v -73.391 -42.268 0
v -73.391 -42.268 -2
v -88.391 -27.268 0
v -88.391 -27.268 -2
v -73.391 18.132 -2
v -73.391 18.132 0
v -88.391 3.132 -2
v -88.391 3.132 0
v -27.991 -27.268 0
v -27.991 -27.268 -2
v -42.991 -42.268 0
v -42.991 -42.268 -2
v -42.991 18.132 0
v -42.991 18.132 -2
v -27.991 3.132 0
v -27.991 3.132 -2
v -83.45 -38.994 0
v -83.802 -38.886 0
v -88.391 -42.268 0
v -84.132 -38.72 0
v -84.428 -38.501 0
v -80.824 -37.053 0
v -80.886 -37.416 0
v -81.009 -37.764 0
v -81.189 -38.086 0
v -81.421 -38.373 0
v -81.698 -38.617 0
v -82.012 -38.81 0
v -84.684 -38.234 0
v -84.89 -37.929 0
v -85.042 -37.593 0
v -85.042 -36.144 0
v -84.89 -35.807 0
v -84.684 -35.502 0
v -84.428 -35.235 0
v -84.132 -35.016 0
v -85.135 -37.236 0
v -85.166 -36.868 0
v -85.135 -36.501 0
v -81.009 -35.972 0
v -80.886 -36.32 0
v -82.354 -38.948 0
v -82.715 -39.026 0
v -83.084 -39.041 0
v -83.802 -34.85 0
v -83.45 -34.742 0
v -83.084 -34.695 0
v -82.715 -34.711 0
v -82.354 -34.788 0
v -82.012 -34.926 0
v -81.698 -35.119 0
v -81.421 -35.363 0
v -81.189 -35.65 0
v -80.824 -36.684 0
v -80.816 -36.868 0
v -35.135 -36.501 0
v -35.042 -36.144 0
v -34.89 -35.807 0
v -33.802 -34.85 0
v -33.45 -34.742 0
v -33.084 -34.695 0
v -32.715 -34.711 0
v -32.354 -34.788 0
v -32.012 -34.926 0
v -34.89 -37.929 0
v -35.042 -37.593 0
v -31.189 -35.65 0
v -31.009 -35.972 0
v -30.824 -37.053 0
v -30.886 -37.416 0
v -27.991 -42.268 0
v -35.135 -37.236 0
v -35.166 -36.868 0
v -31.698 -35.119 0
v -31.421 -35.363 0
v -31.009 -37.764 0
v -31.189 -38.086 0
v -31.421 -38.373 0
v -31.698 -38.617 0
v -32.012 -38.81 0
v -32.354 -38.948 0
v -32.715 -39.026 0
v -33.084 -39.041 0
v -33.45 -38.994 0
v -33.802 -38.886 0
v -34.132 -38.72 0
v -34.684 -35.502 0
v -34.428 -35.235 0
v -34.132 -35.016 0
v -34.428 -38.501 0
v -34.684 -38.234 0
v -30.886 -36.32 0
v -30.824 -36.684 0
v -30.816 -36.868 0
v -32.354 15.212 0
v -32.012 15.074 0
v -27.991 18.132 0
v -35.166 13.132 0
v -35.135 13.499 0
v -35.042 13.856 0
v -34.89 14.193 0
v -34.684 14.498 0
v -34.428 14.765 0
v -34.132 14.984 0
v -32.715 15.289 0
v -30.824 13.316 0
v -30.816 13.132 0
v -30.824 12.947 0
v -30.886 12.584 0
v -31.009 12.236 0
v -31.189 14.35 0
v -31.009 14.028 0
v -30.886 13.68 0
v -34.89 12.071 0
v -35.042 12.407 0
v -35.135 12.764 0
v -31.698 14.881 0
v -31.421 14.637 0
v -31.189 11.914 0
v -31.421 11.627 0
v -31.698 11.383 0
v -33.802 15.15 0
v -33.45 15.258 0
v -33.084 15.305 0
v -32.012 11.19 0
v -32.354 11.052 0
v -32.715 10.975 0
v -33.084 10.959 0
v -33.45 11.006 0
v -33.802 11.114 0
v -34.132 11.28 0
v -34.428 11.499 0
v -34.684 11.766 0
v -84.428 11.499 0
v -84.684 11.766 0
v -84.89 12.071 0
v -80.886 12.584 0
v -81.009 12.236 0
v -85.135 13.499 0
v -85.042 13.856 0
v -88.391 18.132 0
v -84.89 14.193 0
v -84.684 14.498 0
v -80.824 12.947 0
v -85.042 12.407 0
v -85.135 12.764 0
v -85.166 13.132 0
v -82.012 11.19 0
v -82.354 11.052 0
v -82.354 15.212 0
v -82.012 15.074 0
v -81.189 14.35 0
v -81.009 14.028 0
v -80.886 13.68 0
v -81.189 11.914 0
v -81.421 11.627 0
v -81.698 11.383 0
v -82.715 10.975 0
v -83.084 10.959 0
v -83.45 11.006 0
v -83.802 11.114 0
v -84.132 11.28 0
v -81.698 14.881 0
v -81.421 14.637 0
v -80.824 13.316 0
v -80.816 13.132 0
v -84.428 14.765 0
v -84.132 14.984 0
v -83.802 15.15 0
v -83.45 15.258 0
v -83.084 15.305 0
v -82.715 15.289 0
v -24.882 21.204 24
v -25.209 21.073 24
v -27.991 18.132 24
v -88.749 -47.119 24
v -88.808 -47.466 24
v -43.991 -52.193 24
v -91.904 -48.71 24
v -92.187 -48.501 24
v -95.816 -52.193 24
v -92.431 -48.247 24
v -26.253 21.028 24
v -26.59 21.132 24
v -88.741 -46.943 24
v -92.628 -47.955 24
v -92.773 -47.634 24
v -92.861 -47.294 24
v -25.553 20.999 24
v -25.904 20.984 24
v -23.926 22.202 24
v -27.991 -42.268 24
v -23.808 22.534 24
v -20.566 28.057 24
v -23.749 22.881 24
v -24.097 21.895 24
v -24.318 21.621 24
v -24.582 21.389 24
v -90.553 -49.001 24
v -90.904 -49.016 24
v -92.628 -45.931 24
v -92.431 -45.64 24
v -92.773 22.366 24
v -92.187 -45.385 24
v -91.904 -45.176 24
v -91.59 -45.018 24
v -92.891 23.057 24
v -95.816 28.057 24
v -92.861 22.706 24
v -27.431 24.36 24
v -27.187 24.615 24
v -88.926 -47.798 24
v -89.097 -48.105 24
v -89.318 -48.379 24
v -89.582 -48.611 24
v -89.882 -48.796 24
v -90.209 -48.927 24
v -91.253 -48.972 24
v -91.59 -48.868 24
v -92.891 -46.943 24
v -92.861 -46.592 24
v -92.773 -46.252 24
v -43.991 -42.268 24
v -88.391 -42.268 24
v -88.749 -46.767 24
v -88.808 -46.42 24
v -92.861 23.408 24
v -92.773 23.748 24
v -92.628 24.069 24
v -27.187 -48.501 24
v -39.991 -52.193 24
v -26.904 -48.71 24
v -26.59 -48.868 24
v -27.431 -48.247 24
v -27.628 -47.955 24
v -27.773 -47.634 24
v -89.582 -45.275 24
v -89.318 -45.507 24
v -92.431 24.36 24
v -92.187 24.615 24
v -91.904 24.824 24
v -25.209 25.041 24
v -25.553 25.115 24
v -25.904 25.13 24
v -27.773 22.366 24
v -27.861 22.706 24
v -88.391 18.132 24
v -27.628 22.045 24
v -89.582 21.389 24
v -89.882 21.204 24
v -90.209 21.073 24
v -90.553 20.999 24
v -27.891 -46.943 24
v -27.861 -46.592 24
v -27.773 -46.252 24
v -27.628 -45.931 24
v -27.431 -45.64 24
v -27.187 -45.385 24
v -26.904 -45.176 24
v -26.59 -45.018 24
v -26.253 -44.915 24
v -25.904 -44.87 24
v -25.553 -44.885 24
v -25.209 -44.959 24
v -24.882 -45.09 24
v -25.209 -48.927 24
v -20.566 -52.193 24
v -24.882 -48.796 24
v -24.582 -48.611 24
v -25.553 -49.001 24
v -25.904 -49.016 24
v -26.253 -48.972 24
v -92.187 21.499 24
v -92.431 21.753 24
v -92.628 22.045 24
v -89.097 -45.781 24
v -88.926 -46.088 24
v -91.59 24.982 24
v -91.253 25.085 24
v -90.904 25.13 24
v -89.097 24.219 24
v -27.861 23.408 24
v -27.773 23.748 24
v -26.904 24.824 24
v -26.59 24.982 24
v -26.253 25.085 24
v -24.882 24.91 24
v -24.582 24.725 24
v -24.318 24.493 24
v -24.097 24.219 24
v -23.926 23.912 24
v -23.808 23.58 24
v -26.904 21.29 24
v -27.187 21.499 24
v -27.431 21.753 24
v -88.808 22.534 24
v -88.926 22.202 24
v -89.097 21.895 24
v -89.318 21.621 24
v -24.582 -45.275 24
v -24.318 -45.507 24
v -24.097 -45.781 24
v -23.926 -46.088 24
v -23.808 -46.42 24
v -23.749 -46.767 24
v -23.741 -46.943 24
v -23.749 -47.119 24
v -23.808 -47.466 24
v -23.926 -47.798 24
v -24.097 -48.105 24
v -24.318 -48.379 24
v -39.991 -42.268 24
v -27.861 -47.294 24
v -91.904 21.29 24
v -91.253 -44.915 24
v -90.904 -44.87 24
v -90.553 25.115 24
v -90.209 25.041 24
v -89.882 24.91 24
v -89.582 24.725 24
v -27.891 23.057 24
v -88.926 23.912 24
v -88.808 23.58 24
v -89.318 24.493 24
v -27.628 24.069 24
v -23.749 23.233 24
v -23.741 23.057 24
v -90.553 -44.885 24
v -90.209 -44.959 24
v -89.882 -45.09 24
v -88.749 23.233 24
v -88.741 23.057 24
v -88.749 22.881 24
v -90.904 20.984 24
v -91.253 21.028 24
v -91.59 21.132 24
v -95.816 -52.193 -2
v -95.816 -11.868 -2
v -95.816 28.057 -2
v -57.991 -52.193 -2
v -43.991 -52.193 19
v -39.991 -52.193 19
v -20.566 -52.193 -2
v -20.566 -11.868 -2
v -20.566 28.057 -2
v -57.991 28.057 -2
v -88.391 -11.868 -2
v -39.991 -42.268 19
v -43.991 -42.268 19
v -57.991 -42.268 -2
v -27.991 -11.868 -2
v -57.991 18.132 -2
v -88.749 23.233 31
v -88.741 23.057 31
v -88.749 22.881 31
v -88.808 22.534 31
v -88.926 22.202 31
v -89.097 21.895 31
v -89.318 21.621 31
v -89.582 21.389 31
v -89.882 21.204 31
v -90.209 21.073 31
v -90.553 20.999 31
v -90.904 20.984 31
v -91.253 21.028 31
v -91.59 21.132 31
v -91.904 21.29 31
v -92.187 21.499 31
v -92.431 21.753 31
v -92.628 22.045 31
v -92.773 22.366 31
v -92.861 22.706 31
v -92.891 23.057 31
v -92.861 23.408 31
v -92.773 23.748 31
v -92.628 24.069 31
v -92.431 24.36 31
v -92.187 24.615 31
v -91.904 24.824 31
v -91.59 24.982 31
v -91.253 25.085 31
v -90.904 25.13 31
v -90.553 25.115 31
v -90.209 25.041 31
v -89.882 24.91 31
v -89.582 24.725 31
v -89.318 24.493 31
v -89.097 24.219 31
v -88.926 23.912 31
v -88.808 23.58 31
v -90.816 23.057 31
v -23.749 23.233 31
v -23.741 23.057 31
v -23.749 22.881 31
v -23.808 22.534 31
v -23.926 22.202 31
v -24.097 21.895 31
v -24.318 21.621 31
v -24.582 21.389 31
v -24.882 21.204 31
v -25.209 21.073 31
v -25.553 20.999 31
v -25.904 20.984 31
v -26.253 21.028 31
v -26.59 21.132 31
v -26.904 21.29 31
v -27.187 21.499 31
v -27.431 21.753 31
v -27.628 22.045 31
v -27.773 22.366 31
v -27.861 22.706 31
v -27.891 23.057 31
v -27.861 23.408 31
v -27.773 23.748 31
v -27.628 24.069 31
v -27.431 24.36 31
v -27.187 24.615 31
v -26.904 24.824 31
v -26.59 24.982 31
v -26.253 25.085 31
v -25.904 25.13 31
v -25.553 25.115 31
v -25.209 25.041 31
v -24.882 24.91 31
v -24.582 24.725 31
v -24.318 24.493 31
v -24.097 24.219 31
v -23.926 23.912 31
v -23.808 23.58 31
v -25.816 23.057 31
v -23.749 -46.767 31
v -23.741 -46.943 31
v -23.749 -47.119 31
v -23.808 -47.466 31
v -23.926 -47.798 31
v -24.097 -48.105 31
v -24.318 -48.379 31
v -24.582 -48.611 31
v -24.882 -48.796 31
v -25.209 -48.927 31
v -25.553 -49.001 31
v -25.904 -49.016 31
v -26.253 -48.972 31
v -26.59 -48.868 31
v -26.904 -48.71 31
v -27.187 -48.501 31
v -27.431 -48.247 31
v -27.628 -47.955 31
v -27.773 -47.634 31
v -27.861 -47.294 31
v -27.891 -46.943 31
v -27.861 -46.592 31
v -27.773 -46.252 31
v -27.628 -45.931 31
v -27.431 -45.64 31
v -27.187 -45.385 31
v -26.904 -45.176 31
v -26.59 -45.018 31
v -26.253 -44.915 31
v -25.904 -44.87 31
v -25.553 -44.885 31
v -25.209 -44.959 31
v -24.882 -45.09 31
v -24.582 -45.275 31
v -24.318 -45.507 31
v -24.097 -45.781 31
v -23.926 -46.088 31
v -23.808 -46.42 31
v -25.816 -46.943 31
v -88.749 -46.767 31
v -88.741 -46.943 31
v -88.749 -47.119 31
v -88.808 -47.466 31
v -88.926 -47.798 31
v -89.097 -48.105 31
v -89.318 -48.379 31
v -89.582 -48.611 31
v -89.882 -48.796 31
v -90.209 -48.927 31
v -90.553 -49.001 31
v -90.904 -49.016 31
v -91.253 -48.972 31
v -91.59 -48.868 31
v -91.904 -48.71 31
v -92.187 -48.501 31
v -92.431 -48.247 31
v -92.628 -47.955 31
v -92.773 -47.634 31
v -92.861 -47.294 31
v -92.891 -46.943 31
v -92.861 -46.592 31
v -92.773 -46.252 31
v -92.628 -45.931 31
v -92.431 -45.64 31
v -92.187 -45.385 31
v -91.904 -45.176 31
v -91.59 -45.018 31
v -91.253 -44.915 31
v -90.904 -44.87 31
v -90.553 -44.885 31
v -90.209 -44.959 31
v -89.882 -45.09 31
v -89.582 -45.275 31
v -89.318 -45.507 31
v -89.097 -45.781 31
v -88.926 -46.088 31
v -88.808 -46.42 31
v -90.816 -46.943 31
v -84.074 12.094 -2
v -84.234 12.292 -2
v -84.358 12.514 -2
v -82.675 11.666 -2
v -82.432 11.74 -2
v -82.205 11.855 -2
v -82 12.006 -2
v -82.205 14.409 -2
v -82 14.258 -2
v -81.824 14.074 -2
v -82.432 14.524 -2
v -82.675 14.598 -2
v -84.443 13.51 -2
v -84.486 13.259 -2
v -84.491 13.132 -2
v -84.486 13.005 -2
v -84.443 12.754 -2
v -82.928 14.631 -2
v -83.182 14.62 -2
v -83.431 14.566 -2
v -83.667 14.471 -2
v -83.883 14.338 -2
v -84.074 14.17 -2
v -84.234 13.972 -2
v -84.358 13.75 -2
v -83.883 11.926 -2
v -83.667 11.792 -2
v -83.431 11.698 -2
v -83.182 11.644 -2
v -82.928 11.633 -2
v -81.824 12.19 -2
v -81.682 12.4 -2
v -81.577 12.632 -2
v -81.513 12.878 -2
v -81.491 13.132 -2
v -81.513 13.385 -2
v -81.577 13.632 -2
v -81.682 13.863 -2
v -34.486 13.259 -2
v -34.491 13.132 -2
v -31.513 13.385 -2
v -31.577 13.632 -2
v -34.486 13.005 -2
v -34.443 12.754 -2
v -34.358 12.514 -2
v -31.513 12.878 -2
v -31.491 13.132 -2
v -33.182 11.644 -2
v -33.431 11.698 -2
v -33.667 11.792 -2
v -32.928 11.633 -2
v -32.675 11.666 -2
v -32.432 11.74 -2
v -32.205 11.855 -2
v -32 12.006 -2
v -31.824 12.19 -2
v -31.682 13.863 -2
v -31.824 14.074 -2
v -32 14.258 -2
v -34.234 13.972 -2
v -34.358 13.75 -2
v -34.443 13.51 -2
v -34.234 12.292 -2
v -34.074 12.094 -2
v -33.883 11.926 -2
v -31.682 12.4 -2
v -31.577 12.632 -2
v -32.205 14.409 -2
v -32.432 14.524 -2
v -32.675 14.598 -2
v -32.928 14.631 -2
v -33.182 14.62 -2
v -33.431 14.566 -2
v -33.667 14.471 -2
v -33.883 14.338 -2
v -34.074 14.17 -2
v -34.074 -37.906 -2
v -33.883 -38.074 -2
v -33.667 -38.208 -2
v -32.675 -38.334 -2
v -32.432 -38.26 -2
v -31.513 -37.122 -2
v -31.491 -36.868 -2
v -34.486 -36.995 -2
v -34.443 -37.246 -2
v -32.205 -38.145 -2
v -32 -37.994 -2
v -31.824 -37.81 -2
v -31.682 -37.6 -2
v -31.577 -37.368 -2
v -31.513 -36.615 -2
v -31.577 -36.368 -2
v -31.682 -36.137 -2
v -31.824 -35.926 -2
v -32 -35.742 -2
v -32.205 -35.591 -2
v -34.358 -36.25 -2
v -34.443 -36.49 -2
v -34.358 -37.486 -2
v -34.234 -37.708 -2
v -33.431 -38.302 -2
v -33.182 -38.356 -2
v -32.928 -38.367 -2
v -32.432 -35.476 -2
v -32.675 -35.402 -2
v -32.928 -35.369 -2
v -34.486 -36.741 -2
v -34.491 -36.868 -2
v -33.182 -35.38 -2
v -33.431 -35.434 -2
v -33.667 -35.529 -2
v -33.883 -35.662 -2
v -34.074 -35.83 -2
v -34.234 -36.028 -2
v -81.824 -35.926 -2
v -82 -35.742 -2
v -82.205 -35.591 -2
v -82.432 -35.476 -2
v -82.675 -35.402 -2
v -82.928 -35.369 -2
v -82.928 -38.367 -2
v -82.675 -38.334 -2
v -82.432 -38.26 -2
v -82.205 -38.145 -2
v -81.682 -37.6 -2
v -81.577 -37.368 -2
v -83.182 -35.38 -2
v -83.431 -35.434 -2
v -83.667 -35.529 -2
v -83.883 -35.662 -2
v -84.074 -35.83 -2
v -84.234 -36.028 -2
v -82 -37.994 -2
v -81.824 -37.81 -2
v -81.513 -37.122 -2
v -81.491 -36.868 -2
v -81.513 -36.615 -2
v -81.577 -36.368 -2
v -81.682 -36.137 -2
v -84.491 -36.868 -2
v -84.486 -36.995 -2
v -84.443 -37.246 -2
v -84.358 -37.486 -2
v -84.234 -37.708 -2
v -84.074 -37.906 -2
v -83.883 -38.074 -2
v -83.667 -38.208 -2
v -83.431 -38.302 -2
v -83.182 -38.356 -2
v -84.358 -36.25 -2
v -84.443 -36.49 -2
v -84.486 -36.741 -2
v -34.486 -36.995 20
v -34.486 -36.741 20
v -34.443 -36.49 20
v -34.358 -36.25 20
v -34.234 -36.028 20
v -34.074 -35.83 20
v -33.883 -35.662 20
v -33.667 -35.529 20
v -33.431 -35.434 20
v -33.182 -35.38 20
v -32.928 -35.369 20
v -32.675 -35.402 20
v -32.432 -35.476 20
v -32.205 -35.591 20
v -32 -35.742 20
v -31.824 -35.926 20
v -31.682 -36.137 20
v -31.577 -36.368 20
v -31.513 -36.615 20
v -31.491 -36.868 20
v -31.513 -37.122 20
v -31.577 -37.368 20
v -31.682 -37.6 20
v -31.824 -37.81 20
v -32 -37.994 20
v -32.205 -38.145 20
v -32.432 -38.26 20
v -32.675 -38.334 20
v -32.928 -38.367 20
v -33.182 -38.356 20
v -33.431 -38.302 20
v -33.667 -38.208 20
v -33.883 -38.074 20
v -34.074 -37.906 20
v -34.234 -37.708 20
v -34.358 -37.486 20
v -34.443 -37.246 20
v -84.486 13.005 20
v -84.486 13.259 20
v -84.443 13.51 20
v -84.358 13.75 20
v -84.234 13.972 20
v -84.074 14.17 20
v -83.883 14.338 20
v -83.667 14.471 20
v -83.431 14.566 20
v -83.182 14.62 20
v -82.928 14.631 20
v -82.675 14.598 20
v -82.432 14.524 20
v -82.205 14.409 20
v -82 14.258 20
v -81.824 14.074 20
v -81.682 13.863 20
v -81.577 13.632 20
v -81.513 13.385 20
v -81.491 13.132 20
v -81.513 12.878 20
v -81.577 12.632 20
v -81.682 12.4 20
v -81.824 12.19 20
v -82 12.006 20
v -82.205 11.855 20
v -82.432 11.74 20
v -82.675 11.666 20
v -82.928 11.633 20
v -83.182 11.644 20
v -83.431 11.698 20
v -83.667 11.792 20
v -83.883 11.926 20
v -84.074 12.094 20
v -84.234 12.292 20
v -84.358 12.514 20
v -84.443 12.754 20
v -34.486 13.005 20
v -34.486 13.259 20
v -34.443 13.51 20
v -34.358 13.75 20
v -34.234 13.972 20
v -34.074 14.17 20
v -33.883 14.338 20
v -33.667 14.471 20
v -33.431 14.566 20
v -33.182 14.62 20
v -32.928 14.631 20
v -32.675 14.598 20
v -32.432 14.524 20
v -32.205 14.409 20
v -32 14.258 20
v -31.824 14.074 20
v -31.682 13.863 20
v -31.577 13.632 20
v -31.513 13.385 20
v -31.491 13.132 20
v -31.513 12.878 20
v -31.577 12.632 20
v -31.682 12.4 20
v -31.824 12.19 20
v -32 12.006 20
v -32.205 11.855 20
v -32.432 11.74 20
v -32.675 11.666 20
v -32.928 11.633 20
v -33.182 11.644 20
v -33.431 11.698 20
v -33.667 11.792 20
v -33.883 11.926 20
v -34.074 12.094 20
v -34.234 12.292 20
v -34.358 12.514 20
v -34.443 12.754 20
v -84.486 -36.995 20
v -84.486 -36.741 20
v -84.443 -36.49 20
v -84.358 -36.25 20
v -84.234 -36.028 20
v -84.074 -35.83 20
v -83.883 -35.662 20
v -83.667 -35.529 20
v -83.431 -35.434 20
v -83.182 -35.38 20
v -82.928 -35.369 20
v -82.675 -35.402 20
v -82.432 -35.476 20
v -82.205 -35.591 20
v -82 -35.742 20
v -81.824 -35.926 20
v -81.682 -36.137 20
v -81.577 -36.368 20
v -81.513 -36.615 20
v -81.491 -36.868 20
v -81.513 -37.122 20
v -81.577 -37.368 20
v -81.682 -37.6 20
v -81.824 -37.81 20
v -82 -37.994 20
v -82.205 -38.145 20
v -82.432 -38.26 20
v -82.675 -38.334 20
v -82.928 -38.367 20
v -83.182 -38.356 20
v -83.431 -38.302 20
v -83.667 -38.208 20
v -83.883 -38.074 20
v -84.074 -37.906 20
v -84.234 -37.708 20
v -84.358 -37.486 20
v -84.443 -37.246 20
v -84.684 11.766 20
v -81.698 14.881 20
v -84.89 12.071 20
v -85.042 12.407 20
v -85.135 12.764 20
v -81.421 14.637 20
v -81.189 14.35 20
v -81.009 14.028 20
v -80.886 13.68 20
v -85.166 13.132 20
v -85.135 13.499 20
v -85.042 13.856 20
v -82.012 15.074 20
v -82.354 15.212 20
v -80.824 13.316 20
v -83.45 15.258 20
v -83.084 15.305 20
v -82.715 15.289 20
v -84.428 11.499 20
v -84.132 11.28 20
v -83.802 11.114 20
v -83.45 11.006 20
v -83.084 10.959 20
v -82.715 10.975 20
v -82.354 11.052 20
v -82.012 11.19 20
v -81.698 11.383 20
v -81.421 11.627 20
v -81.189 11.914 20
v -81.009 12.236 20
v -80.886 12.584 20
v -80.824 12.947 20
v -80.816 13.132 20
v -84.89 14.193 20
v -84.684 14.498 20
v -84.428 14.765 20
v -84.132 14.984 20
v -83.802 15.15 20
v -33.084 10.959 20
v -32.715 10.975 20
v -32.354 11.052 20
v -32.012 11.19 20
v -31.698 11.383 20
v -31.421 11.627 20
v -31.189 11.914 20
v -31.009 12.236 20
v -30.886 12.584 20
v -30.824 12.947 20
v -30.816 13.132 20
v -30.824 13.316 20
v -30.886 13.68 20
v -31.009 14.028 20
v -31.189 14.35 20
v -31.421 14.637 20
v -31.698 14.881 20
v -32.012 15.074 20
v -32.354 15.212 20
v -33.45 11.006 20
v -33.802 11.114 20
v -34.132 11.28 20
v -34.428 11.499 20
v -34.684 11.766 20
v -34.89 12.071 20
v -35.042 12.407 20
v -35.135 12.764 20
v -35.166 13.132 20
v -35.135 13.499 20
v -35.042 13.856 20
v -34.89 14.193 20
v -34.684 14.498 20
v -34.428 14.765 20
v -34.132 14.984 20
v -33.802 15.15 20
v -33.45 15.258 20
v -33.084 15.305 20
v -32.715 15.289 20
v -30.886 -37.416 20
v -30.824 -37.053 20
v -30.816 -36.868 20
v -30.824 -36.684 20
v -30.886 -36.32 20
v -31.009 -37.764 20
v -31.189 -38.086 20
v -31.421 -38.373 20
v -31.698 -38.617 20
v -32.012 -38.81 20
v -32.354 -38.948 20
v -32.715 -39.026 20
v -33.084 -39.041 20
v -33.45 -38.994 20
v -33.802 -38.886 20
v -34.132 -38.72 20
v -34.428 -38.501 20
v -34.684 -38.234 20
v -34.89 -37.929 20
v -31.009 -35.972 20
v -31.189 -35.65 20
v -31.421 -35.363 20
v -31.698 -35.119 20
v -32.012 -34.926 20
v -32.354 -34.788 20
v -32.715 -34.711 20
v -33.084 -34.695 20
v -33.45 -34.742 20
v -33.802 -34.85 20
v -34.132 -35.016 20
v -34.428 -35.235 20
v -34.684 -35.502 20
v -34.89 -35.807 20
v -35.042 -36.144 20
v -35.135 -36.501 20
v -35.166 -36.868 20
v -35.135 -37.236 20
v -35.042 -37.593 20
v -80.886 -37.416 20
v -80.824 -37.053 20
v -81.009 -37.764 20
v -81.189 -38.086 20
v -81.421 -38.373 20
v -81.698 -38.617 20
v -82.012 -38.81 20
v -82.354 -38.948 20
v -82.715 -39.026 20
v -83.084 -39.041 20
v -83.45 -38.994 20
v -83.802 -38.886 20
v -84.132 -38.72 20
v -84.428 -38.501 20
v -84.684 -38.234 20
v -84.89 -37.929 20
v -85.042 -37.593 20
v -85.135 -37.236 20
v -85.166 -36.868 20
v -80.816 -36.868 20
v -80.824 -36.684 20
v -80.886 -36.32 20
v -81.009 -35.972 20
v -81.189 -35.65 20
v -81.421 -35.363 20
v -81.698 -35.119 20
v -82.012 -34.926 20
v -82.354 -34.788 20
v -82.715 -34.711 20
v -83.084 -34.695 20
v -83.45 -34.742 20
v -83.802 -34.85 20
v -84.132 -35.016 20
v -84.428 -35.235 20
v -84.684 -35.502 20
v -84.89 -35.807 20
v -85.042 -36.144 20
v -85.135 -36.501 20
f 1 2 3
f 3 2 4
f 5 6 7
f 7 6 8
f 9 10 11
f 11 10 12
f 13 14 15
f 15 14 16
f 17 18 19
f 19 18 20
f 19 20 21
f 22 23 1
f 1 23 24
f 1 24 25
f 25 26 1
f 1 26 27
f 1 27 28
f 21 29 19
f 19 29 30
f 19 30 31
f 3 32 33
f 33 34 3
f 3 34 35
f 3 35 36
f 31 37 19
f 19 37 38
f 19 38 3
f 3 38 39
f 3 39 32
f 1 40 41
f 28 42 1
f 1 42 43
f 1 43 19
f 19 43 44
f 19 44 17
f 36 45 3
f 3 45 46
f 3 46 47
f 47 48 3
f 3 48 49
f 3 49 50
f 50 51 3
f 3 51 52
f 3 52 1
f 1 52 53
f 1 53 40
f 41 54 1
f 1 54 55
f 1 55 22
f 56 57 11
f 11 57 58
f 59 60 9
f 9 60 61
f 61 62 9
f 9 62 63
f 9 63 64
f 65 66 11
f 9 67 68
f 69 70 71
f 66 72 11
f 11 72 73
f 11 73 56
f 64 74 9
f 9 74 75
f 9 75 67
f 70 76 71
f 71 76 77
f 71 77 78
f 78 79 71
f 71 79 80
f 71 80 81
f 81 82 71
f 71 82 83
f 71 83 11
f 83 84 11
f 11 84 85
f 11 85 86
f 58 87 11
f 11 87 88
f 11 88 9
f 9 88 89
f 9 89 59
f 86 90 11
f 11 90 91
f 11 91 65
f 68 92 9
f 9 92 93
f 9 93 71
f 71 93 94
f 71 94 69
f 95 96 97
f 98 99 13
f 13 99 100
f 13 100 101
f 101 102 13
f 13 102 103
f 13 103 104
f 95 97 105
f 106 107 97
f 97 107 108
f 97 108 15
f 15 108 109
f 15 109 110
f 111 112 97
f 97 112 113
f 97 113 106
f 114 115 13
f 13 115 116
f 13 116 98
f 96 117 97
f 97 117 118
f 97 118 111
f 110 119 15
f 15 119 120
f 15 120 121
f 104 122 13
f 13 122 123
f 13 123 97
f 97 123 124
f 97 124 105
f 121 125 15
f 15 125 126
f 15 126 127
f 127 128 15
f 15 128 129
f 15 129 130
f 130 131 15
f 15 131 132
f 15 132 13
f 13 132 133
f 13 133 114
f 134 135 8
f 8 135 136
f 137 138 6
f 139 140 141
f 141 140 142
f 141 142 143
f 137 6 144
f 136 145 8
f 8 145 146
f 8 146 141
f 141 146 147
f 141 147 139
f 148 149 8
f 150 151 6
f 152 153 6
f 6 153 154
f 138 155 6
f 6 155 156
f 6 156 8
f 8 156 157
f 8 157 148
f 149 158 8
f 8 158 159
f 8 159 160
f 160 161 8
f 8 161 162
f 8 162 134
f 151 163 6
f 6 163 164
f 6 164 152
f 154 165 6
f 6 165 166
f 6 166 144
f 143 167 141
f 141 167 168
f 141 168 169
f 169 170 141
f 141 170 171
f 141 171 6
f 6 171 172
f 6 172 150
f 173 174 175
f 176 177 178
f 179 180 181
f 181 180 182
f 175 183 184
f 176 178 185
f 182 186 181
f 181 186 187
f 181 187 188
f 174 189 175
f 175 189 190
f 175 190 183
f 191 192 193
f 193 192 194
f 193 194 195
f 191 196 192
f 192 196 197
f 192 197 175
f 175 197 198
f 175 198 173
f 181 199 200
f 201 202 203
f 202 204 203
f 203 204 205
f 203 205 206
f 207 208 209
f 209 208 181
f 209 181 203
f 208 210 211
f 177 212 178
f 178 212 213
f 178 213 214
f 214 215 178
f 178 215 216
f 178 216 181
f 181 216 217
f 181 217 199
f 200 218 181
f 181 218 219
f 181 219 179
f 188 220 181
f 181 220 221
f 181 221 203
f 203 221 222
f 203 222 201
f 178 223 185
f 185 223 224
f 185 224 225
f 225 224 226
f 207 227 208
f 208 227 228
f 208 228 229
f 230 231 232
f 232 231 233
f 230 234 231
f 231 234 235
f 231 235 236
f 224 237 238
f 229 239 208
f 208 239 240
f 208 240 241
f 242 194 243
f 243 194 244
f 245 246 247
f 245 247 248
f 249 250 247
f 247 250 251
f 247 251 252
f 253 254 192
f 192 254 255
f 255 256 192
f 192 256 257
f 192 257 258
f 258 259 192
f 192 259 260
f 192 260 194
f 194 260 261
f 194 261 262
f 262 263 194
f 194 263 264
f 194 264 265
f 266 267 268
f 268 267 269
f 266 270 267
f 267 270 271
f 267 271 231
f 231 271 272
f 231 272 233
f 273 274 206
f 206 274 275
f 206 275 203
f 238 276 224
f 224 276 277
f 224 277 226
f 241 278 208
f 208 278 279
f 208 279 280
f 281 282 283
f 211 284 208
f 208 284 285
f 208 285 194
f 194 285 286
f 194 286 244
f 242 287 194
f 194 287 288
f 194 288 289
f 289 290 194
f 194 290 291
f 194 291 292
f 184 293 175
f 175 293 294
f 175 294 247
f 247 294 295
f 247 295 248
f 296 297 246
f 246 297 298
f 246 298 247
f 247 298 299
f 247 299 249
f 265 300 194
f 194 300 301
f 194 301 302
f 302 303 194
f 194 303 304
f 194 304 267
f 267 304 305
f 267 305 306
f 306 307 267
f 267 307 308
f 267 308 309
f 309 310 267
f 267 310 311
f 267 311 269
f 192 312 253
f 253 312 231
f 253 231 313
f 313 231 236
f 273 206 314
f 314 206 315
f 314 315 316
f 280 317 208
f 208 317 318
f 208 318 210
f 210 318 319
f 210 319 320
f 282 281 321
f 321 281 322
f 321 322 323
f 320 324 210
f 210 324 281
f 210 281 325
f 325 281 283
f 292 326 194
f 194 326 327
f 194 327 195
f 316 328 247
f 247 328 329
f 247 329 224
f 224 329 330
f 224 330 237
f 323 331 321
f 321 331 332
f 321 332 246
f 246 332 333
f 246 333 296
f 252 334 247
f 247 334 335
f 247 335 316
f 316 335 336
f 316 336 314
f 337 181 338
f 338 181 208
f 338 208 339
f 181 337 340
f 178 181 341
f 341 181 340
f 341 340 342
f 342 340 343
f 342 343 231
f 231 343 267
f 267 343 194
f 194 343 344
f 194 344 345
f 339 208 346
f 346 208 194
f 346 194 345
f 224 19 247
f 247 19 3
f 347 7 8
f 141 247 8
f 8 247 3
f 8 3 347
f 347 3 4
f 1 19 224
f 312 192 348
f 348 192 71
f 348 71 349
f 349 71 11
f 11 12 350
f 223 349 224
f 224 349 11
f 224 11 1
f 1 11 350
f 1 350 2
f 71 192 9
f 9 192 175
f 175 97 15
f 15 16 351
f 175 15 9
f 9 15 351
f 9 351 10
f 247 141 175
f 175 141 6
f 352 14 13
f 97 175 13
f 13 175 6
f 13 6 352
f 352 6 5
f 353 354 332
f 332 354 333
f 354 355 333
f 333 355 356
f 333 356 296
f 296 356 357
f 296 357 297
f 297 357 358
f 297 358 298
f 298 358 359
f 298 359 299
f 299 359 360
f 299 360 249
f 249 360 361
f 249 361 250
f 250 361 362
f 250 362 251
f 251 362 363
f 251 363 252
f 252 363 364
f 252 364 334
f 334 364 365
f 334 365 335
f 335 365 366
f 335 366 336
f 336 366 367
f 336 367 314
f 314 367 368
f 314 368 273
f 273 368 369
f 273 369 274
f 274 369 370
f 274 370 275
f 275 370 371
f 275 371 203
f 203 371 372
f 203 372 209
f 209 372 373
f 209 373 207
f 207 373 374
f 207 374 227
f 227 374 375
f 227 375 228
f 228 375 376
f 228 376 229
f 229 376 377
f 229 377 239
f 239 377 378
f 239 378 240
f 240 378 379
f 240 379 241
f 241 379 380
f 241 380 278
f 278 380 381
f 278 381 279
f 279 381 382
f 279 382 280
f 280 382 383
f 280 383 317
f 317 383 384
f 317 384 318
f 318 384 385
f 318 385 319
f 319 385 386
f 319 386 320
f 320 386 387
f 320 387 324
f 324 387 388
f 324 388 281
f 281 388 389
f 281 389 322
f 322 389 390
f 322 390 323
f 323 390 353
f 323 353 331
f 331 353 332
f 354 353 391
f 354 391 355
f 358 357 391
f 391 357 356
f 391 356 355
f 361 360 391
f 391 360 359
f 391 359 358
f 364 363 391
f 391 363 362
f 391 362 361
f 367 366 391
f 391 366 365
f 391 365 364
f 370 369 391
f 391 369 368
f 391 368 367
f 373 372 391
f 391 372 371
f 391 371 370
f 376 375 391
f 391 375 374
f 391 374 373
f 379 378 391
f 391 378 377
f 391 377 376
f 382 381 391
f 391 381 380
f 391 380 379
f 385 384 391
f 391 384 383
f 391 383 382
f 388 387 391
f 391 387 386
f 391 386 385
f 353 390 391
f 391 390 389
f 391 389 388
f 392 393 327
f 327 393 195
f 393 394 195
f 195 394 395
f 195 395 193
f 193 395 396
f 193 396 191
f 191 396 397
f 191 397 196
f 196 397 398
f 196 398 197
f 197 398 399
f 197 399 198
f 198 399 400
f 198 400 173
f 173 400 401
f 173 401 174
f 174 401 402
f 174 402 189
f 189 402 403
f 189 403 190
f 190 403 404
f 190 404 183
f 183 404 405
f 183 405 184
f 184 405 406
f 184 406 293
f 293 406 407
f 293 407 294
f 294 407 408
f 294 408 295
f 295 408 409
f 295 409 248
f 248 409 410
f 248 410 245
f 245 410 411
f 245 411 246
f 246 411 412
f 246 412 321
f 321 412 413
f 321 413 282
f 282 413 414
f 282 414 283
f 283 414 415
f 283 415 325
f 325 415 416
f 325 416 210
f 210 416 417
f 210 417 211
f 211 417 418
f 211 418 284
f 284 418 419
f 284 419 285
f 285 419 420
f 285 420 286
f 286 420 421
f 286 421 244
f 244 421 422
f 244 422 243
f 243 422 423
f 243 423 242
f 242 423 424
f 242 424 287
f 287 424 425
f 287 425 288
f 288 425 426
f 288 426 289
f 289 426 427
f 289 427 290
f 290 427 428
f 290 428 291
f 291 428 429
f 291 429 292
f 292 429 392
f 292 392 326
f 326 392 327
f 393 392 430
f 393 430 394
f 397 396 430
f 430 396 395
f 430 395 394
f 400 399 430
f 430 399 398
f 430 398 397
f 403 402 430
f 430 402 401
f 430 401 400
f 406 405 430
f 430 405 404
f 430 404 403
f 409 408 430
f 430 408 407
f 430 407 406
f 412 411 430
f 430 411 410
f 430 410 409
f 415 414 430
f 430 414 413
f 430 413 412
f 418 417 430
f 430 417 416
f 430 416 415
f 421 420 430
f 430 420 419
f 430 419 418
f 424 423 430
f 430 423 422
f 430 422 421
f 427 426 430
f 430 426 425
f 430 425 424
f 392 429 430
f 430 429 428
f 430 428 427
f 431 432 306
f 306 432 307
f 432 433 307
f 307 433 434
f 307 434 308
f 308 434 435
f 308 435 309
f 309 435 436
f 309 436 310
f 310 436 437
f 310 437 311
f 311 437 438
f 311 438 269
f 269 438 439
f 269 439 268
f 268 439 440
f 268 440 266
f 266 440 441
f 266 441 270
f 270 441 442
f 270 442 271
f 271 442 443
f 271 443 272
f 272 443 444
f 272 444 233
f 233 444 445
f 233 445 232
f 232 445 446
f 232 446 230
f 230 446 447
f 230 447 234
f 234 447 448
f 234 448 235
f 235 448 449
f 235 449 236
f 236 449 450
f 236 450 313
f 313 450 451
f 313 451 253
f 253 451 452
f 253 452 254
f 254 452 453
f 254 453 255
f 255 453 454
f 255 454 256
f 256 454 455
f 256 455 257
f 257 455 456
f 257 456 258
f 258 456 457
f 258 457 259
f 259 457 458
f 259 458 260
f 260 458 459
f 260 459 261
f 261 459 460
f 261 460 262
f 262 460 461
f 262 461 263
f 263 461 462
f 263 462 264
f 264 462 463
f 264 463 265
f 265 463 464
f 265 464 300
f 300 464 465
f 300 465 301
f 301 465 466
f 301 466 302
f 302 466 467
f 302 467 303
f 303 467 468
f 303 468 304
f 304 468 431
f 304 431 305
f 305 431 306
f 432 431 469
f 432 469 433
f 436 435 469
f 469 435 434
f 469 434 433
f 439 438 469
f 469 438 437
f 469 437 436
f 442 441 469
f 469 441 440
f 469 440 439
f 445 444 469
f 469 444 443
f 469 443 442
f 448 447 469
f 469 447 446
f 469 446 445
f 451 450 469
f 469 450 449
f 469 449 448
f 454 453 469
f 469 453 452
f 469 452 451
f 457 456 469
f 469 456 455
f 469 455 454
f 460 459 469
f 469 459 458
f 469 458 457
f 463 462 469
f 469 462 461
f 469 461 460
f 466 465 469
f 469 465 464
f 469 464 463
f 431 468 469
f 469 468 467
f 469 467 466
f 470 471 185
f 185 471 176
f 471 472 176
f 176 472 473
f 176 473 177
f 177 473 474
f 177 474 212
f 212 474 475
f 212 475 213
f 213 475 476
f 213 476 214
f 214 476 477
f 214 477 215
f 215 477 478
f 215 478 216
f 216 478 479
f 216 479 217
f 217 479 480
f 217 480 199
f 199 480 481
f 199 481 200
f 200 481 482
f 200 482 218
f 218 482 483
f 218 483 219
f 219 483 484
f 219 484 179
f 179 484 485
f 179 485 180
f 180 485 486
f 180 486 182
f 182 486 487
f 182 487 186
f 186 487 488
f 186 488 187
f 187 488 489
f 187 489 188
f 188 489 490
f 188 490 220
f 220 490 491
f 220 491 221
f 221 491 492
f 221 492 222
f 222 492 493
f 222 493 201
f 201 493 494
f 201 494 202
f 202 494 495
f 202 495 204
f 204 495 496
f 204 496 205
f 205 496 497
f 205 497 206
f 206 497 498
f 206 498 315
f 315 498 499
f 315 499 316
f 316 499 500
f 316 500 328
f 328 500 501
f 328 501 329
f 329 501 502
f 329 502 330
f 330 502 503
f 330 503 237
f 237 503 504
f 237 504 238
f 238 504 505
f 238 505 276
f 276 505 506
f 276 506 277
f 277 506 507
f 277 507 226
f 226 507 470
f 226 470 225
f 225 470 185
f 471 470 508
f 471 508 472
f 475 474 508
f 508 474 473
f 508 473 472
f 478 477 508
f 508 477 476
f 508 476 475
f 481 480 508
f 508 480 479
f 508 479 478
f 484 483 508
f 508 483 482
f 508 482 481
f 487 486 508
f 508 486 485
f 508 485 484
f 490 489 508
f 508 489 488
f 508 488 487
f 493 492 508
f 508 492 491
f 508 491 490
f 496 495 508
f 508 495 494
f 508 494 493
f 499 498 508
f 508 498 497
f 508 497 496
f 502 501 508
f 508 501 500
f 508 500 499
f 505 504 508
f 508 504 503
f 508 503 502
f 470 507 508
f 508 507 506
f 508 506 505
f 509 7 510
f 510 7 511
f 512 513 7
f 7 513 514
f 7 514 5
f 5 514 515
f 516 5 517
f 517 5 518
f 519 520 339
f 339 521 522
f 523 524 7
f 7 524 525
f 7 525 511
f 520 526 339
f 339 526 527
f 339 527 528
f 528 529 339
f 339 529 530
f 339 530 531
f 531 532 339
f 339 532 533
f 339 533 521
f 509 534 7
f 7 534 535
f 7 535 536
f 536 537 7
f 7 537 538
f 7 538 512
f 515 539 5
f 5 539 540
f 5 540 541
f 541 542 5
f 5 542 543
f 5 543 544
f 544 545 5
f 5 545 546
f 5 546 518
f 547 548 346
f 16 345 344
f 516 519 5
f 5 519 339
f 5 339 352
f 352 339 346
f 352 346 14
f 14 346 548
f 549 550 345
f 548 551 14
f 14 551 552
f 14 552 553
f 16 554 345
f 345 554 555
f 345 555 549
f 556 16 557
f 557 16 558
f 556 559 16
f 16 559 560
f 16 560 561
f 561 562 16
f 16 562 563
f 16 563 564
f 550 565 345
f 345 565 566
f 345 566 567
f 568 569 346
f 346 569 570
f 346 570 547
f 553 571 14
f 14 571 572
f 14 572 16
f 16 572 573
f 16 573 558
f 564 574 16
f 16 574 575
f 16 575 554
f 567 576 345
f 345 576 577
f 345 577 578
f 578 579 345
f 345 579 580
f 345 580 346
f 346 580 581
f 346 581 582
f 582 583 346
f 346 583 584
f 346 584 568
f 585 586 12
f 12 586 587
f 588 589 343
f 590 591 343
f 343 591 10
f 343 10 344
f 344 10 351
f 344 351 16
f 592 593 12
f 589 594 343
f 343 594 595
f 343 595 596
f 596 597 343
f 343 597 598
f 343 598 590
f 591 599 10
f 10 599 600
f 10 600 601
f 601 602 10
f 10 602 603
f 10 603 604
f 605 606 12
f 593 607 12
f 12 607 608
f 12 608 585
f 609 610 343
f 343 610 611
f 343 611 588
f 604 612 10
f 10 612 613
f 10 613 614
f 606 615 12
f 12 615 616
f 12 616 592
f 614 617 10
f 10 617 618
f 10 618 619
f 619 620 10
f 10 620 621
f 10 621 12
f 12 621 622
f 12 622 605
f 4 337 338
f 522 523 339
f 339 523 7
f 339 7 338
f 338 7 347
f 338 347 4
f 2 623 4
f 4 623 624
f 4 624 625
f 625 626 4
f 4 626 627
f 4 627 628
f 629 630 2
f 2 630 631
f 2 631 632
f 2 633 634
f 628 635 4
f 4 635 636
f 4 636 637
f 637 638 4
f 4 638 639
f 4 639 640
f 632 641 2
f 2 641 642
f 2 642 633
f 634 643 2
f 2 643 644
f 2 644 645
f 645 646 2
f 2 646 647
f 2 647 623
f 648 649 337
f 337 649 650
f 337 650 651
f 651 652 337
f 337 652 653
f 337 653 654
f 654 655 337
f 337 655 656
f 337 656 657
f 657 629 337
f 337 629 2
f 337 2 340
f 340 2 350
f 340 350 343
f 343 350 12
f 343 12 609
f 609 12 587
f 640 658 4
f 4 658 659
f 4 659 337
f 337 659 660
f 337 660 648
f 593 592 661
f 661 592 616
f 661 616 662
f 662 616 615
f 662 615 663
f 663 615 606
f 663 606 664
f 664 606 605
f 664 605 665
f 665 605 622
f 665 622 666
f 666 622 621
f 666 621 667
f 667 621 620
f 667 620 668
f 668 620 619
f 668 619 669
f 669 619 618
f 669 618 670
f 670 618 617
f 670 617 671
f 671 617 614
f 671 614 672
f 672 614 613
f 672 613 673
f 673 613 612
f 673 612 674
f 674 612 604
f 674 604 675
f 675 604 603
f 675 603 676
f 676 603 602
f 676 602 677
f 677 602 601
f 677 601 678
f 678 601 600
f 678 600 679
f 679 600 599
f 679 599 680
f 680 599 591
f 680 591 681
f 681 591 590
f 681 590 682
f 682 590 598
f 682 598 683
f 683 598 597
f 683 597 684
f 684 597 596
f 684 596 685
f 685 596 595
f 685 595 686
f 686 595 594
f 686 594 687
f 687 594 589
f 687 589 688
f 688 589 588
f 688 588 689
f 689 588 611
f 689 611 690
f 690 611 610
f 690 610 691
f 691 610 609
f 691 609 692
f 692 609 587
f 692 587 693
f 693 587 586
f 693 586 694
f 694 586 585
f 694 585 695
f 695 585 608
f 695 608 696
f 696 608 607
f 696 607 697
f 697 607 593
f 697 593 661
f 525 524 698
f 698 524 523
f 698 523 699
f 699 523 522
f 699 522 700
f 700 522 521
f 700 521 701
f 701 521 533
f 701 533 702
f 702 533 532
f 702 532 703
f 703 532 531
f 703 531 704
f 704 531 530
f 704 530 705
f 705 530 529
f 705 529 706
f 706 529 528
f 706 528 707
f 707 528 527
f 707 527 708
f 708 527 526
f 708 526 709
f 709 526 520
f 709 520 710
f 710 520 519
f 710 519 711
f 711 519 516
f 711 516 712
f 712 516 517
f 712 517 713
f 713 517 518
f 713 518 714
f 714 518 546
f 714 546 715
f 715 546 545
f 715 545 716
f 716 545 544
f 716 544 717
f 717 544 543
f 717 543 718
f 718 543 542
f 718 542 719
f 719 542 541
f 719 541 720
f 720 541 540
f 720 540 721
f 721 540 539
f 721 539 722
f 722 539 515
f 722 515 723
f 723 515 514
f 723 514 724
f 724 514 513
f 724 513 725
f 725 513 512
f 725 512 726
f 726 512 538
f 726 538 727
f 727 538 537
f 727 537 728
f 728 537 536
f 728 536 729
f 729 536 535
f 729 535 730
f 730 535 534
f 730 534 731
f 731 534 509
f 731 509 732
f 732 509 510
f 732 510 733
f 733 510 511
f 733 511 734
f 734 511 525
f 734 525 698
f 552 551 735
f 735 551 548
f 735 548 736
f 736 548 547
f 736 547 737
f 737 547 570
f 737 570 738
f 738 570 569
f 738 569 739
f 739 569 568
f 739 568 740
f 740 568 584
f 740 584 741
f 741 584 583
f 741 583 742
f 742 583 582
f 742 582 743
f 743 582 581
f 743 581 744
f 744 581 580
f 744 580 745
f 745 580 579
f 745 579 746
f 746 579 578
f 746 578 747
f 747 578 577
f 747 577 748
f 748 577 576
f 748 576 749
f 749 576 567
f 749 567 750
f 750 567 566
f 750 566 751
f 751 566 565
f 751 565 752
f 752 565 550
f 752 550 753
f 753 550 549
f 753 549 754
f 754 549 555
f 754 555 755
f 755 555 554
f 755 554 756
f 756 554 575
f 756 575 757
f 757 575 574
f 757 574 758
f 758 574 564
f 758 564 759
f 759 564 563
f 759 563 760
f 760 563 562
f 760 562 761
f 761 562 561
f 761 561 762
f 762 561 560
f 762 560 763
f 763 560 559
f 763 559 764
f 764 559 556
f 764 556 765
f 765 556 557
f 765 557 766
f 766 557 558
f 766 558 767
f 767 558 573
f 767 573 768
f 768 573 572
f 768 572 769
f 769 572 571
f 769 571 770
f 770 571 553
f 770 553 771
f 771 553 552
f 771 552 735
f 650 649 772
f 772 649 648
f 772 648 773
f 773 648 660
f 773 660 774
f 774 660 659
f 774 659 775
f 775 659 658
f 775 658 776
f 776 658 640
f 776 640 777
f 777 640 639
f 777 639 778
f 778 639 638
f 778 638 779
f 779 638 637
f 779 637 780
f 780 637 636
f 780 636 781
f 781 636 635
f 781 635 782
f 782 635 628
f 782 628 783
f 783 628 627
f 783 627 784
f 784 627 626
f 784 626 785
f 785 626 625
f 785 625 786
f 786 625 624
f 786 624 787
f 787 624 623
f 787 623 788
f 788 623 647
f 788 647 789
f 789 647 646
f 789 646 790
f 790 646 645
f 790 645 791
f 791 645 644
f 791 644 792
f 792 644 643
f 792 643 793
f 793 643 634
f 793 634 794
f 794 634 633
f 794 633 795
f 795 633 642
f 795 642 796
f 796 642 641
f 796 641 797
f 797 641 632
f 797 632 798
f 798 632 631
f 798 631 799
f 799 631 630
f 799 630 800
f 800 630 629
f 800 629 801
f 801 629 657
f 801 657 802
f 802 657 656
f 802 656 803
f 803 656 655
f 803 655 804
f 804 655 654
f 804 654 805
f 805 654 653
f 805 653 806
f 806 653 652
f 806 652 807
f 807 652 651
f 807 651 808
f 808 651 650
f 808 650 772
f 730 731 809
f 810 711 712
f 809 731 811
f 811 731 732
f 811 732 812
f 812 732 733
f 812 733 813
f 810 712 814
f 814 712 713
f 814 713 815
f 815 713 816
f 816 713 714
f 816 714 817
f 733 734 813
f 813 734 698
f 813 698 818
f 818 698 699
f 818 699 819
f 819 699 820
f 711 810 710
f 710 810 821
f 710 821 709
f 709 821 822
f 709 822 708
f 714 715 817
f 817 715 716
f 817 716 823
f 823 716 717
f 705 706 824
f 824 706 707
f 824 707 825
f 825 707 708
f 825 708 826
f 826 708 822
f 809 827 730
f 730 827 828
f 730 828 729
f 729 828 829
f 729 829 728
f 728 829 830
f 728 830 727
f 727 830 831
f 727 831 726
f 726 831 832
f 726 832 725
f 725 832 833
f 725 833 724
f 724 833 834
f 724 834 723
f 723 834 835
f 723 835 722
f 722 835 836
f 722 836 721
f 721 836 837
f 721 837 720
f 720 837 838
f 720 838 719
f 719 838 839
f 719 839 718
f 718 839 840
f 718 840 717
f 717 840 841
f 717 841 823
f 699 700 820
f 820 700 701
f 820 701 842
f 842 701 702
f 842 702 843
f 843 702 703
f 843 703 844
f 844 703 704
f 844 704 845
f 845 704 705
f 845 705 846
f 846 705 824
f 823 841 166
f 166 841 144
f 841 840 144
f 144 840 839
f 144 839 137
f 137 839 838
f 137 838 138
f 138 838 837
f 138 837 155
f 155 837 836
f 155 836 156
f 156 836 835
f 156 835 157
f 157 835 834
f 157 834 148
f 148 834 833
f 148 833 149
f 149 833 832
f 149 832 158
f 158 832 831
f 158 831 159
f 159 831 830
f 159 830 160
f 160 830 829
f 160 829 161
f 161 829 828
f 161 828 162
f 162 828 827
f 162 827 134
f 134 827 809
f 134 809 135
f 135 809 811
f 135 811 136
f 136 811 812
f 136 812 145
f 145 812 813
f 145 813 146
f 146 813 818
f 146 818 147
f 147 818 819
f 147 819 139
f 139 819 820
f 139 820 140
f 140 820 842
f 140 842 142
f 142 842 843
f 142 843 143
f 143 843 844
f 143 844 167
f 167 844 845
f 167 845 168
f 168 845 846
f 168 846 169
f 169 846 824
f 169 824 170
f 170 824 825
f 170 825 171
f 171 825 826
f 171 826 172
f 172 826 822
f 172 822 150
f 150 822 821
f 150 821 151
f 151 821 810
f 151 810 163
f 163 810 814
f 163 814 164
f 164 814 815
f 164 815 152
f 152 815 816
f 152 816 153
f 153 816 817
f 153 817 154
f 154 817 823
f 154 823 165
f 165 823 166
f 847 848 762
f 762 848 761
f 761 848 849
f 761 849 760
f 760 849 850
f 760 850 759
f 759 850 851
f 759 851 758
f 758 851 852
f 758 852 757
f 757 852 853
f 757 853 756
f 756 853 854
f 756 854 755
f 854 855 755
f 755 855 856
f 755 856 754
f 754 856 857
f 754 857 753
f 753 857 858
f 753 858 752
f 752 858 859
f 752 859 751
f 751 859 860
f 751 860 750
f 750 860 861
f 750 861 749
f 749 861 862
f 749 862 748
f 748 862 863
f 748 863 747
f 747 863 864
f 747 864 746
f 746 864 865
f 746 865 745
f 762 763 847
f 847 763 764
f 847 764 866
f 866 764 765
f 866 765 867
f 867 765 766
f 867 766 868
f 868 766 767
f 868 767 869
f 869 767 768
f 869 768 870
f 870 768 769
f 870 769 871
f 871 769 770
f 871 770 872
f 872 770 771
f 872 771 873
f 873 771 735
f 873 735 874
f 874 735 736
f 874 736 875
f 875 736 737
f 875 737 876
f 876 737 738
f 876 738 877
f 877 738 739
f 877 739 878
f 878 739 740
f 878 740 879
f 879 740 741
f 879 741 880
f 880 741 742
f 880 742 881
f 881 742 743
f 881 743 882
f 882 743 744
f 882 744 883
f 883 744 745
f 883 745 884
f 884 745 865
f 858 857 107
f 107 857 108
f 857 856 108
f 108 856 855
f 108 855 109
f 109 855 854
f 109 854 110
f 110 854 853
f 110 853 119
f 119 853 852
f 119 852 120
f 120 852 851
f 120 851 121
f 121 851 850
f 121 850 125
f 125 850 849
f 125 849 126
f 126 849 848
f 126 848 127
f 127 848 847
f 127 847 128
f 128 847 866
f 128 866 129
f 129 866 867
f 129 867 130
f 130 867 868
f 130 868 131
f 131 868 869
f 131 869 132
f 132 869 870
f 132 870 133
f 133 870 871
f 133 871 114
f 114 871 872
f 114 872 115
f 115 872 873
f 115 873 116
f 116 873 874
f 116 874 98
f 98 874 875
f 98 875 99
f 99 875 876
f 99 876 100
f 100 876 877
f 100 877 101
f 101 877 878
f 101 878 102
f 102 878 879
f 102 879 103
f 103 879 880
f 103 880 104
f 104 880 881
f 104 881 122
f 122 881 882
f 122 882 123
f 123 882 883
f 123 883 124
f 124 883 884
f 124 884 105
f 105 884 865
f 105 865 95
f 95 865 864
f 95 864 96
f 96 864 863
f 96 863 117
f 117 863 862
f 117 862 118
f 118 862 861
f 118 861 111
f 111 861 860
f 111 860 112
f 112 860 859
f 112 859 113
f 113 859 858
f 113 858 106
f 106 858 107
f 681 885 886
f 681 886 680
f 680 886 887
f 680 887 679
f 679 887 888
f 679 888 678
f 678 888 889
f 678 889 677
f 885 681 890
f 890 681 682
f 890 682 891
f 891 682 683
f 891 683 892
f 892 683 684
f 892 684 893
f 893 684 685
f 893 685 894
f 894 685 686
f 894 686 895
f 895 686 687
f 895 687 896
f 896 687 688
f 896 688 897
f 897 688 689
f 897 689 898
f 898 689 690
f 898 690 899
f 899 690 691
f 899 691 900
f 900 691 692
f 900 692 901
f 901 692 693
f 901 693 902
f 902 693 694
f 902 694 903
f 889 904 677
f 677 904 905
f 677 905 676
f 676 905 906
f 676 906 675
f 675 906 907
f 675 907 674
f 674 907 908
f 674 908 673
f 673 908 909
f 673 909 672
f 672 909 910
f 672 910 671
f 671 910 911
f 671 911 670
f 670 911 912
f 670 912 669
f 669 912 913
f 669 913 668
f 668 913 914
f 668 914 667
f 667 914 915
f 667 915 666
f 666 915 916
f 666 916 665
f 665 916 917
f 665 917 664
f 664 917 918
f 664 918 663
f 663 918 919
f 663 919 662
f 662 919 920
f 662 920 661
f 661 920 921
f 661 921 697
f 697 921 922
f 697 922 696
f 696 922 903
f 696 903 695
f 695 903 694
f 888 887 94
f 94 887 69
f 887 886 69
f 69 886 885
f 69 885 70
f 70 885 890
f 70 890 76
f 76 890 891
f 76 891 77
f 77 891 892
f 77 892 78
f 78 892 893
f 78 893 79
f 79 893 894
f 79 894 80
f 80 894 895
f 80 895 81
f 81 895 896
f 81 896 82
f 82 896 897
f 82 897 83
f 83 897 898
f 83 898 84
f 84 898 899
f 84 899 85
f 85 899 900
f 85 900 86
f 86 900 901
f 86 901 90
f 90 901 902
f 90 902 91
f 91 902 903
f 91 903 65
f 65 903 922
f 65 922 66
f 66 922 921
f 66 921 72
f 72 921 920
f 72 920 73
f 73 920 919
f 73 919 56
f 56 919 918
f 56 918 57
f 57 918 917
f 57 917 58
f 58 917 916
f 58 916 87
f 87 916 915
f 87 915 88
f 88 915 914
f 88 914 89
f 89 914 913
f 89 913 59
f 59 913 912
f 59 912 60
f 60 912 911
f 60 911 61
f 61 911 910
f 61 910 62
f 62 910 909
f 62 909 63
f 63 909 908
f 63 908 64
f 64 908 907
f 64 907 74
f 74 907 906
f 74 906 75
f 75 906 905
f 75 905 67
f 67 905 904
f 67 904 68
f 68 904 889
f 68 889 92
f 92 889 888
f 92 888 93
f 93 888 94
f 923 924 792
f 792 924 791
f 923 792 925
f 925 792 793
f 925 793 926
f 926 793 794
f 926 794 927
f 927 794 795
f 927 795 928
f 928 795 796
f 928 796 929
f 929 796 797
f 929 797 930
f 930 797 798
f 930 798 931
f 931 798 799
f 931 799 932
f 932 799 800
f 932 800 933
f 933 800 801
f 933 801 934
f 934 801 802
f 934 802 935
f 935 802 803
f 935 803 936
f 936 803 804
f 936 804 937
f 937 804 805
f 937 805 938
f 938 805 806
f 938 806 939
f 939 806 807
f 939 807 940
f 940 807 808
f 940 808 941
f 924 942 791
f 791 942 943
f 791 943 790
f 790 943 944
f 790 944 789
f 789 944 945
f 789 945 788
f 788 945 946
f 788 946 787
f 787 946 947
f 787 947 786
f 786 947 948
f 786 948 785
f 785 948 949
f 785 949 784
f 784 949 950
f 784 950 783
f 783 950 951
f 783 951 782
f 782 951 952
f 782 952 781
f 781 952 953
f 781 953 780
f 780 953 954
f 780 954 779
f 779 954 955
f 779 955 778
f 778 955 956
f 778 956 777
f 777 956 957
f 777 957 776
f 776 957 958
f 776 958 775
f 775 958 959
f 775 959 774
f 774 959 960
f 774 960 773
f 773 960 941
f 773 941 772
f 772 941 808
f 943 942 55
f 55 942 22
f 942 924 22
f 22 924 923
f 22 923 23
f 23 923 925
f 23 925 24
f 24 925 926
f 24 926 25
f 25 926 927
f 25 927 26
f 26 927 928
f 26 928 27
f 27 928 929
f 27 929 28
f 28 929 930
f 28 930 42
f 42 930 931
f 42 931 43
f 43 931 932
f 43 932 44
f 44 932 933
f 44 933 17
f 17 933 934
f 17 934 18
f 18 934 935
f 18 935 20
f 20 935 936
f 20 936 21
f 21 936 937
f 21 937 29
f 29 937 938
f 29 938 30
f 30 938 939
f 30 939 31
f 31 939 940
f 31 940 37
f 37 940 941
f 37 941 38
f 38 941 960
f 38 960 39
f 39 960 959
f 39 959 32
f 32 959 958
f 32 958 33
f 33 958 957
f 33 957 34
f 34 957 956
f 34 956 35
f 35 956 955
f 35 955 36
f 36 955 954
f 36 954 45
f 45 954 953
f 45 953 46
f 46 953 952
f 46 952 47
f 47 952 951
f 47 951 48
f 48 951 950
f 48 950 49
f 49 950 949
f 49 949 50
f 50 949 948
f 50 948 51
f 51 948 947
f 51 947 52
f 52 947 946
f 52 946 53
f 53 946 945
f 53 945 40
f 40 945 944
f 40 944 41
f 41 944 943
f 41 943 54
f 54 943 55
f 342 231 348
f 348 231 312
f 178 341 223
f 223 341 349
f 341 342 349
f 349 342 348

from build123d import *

# Parameters (mm, degrees)
CROQUIS1_W              = 75.25
CROQUIS1_H              = 80.25
CROQUIS1_W_2            = 60.4
CROQUIS1_H_2            = 60.4
SALIENTE_EXTRUIR1_DEPTH = 24
CROQUIS2_R              = 2.075
SALIENTE_EXTRUIR2_DEPTH = 7
CROQUIS3_R              = 1.5
SALIENTE_EXTRUIR3_DEPTH = 2
CROQUIS4_R              = 2.175
CROQUIS4_R_2            = 1.5
SALIENTE_EXTRUIR4_DEPTH = 20
CROQUIS5_W              = 4
CROQUIS5_H              = 5
CORTAR_EXTRUIR1_DEPTH   = 9.925
SALIENTE_EXTRUIR5_DEPTH = 2


with BuildPart() as part:
    # Croquis1 → Saliente-Extruir1 (new body)
    with BuildSketch(Plane.XY):
        with Locations((-58.191304348, -12.068115942)):
            Rectangle(CROQUIS1_W, CROQUIS1_H)
        with Locations((-58.191304348, -12.068115942)):
            Rectangle(CROQUIS1_W_2, CROQUIS1_H_2, mode=Mode.SUBTRACT)
    extrude(amount=SALIENTE_EXTRUIR1_DEPTH)

    # Croquis2 → Saliente-Extruir2 (add)
    with BuildSketch(Plane.XY.offset(24)):
        with Locations((-90.816304348, 23.056884058)):
            Circle(CROQUIS2_R)
        with Locations((-25.816304348, 23.056884058)):
            Circle(CROQUIS2_R)
        with Locations((-25.816304348, -46.943115942)):
            Circle(CROQUIS2_R)
        with Locations((-90.816304348, -46.943115942)):
            Circle(CROQUIS2_R)
    extrude(amount=SALIENTE_EXTRUIR2_DEPTH)

    # Croquis3 → Saliente-Extruir3 (add)
    with BuildSketch(Plane(origin=(0, 0, 0), x_dir=(-1, 0, 0), z_dir=(0, 0, -1))):
        Polygon((20.566304348, -19.843115942), (20.566304348, -52.193115942), (52.916304348, -52.193115942), align=None)
        with Locations((32.991304348, -36.868115942)):
            Circle(CROQUIS3_R, mode=Mode.SUBTRACT)
        Polygon((95.816304348, -4.293115942), (95.816304348, 28.056884058), (63.466304348, 28.056884058), align=None)
        with Locations((82.991304348, 13.131884058)):
            Circle(CROQUIS3_R, mode=Mode.SUBTRACT)
        Polygon((95.816304348, -19.843115942), (63.466304348, -52.193115942), (95.816304348, -52.193115942), align=None)
        with Locations((82.991304348, -36.868115942)):
            Circle(CROQUIS3_R, mode=Mode.SUBTRACT)
        Polygon((20.566304348, -4.293115942), (52.916304348, 28.056884058), (20.566304348, 28.056884058), align=None)
        with Locations((32.991304348, 13.131884058)):
            Circle(CROQUIS3_R, mode=Mode.SUBTRACT)
    extrude(amount=SALIENTE_EXTRUIR3_DEPTH)

    # Croquis4 → Saliente-Extruir4 (add)
    with BuildSketch(Plane.XY):
        with Locations((-82.991304348, 13.131884058)):
            Circle(CROQUIS4_R)
        with Locations((-82.991304348, 13.131884058)):
            Circle(CROQUIS4_R_2, mode=Mode.SUBTRACT)
        with Locations((-32.991304348, 13.131884058)):
            Circle(CROQUIS4_R)
        with Locations((-32.991304348, 13.131884058)):
            Circle(CROQUIS4_R_2, mode=Mode.SUBTRACT)
        with Locations((-32.991304348, -36.868115942)):
            Circle(CROQUIS4_R)
        with Locations((-32.991304348, -36.868115942)):
            Circle(CROQUIS4_R_2, mode=Mode.SUBTRACT)
        with Locations((-82.991304348, -36.868115942)):
            Circle(CROQUIS4_R)
        with Locations((-82.991304348, -36.868115942)):
            Circle(CROQUIS4_R_2, mode=Mode.SUBTRACT)
    extrude(amount=SALIENTE_EXTRUIR4_DEPTH)

    # Croquis5 → Cortar-Extruir1 (cut)
    with BuildSketch(Plane(origin=(0, -42.268115942, 0), x_dir=(1, 0, 0), z_dir=(0, 1, 0))):
        with Locations((-41.991304348, -21.5)):
            Rectangle(CROQUIS5_W, CROQUIS5_H)
    extrude(amount=-CORTAR_EXTRUIR1_DEPTH, mode=Mode.SUBTRACT)

    # Croquis6 → Saliente-Extruir5 (add)
    with BuildSketch(Plane(origin=(0, 0, 0), x_dir=(-1, 0, 0), z_dir=(0, 0, -1))):
        Polygon((42.991304348, 18.131884058), (52.916304348, 28.056884058), (63.466304348, 28.056884058), (73.391304348, 18.131884058), align=None)
        Polygon((27.991304348, 3.131884058), (27.991304348, -27.268115942), (20.566304348, -19.843115942), (20.566304348, -4.293115942), align=None)
        Polygon((42.991304348, -42.268115942), (52.916304348, -52.193115942), (63.466304348, -52.193115942), (73.391304348, -42.268115942), align=None)
        Polygon((88.391304348, -27.268115942), (88.391304348, 3.131884058), (95.816304348, -4.293115942), (95.816304348, -19.843115942), align=None)
    extrude(amount=SALIENTE_EXTRUIR5_DEPTH)


solid = part.part
